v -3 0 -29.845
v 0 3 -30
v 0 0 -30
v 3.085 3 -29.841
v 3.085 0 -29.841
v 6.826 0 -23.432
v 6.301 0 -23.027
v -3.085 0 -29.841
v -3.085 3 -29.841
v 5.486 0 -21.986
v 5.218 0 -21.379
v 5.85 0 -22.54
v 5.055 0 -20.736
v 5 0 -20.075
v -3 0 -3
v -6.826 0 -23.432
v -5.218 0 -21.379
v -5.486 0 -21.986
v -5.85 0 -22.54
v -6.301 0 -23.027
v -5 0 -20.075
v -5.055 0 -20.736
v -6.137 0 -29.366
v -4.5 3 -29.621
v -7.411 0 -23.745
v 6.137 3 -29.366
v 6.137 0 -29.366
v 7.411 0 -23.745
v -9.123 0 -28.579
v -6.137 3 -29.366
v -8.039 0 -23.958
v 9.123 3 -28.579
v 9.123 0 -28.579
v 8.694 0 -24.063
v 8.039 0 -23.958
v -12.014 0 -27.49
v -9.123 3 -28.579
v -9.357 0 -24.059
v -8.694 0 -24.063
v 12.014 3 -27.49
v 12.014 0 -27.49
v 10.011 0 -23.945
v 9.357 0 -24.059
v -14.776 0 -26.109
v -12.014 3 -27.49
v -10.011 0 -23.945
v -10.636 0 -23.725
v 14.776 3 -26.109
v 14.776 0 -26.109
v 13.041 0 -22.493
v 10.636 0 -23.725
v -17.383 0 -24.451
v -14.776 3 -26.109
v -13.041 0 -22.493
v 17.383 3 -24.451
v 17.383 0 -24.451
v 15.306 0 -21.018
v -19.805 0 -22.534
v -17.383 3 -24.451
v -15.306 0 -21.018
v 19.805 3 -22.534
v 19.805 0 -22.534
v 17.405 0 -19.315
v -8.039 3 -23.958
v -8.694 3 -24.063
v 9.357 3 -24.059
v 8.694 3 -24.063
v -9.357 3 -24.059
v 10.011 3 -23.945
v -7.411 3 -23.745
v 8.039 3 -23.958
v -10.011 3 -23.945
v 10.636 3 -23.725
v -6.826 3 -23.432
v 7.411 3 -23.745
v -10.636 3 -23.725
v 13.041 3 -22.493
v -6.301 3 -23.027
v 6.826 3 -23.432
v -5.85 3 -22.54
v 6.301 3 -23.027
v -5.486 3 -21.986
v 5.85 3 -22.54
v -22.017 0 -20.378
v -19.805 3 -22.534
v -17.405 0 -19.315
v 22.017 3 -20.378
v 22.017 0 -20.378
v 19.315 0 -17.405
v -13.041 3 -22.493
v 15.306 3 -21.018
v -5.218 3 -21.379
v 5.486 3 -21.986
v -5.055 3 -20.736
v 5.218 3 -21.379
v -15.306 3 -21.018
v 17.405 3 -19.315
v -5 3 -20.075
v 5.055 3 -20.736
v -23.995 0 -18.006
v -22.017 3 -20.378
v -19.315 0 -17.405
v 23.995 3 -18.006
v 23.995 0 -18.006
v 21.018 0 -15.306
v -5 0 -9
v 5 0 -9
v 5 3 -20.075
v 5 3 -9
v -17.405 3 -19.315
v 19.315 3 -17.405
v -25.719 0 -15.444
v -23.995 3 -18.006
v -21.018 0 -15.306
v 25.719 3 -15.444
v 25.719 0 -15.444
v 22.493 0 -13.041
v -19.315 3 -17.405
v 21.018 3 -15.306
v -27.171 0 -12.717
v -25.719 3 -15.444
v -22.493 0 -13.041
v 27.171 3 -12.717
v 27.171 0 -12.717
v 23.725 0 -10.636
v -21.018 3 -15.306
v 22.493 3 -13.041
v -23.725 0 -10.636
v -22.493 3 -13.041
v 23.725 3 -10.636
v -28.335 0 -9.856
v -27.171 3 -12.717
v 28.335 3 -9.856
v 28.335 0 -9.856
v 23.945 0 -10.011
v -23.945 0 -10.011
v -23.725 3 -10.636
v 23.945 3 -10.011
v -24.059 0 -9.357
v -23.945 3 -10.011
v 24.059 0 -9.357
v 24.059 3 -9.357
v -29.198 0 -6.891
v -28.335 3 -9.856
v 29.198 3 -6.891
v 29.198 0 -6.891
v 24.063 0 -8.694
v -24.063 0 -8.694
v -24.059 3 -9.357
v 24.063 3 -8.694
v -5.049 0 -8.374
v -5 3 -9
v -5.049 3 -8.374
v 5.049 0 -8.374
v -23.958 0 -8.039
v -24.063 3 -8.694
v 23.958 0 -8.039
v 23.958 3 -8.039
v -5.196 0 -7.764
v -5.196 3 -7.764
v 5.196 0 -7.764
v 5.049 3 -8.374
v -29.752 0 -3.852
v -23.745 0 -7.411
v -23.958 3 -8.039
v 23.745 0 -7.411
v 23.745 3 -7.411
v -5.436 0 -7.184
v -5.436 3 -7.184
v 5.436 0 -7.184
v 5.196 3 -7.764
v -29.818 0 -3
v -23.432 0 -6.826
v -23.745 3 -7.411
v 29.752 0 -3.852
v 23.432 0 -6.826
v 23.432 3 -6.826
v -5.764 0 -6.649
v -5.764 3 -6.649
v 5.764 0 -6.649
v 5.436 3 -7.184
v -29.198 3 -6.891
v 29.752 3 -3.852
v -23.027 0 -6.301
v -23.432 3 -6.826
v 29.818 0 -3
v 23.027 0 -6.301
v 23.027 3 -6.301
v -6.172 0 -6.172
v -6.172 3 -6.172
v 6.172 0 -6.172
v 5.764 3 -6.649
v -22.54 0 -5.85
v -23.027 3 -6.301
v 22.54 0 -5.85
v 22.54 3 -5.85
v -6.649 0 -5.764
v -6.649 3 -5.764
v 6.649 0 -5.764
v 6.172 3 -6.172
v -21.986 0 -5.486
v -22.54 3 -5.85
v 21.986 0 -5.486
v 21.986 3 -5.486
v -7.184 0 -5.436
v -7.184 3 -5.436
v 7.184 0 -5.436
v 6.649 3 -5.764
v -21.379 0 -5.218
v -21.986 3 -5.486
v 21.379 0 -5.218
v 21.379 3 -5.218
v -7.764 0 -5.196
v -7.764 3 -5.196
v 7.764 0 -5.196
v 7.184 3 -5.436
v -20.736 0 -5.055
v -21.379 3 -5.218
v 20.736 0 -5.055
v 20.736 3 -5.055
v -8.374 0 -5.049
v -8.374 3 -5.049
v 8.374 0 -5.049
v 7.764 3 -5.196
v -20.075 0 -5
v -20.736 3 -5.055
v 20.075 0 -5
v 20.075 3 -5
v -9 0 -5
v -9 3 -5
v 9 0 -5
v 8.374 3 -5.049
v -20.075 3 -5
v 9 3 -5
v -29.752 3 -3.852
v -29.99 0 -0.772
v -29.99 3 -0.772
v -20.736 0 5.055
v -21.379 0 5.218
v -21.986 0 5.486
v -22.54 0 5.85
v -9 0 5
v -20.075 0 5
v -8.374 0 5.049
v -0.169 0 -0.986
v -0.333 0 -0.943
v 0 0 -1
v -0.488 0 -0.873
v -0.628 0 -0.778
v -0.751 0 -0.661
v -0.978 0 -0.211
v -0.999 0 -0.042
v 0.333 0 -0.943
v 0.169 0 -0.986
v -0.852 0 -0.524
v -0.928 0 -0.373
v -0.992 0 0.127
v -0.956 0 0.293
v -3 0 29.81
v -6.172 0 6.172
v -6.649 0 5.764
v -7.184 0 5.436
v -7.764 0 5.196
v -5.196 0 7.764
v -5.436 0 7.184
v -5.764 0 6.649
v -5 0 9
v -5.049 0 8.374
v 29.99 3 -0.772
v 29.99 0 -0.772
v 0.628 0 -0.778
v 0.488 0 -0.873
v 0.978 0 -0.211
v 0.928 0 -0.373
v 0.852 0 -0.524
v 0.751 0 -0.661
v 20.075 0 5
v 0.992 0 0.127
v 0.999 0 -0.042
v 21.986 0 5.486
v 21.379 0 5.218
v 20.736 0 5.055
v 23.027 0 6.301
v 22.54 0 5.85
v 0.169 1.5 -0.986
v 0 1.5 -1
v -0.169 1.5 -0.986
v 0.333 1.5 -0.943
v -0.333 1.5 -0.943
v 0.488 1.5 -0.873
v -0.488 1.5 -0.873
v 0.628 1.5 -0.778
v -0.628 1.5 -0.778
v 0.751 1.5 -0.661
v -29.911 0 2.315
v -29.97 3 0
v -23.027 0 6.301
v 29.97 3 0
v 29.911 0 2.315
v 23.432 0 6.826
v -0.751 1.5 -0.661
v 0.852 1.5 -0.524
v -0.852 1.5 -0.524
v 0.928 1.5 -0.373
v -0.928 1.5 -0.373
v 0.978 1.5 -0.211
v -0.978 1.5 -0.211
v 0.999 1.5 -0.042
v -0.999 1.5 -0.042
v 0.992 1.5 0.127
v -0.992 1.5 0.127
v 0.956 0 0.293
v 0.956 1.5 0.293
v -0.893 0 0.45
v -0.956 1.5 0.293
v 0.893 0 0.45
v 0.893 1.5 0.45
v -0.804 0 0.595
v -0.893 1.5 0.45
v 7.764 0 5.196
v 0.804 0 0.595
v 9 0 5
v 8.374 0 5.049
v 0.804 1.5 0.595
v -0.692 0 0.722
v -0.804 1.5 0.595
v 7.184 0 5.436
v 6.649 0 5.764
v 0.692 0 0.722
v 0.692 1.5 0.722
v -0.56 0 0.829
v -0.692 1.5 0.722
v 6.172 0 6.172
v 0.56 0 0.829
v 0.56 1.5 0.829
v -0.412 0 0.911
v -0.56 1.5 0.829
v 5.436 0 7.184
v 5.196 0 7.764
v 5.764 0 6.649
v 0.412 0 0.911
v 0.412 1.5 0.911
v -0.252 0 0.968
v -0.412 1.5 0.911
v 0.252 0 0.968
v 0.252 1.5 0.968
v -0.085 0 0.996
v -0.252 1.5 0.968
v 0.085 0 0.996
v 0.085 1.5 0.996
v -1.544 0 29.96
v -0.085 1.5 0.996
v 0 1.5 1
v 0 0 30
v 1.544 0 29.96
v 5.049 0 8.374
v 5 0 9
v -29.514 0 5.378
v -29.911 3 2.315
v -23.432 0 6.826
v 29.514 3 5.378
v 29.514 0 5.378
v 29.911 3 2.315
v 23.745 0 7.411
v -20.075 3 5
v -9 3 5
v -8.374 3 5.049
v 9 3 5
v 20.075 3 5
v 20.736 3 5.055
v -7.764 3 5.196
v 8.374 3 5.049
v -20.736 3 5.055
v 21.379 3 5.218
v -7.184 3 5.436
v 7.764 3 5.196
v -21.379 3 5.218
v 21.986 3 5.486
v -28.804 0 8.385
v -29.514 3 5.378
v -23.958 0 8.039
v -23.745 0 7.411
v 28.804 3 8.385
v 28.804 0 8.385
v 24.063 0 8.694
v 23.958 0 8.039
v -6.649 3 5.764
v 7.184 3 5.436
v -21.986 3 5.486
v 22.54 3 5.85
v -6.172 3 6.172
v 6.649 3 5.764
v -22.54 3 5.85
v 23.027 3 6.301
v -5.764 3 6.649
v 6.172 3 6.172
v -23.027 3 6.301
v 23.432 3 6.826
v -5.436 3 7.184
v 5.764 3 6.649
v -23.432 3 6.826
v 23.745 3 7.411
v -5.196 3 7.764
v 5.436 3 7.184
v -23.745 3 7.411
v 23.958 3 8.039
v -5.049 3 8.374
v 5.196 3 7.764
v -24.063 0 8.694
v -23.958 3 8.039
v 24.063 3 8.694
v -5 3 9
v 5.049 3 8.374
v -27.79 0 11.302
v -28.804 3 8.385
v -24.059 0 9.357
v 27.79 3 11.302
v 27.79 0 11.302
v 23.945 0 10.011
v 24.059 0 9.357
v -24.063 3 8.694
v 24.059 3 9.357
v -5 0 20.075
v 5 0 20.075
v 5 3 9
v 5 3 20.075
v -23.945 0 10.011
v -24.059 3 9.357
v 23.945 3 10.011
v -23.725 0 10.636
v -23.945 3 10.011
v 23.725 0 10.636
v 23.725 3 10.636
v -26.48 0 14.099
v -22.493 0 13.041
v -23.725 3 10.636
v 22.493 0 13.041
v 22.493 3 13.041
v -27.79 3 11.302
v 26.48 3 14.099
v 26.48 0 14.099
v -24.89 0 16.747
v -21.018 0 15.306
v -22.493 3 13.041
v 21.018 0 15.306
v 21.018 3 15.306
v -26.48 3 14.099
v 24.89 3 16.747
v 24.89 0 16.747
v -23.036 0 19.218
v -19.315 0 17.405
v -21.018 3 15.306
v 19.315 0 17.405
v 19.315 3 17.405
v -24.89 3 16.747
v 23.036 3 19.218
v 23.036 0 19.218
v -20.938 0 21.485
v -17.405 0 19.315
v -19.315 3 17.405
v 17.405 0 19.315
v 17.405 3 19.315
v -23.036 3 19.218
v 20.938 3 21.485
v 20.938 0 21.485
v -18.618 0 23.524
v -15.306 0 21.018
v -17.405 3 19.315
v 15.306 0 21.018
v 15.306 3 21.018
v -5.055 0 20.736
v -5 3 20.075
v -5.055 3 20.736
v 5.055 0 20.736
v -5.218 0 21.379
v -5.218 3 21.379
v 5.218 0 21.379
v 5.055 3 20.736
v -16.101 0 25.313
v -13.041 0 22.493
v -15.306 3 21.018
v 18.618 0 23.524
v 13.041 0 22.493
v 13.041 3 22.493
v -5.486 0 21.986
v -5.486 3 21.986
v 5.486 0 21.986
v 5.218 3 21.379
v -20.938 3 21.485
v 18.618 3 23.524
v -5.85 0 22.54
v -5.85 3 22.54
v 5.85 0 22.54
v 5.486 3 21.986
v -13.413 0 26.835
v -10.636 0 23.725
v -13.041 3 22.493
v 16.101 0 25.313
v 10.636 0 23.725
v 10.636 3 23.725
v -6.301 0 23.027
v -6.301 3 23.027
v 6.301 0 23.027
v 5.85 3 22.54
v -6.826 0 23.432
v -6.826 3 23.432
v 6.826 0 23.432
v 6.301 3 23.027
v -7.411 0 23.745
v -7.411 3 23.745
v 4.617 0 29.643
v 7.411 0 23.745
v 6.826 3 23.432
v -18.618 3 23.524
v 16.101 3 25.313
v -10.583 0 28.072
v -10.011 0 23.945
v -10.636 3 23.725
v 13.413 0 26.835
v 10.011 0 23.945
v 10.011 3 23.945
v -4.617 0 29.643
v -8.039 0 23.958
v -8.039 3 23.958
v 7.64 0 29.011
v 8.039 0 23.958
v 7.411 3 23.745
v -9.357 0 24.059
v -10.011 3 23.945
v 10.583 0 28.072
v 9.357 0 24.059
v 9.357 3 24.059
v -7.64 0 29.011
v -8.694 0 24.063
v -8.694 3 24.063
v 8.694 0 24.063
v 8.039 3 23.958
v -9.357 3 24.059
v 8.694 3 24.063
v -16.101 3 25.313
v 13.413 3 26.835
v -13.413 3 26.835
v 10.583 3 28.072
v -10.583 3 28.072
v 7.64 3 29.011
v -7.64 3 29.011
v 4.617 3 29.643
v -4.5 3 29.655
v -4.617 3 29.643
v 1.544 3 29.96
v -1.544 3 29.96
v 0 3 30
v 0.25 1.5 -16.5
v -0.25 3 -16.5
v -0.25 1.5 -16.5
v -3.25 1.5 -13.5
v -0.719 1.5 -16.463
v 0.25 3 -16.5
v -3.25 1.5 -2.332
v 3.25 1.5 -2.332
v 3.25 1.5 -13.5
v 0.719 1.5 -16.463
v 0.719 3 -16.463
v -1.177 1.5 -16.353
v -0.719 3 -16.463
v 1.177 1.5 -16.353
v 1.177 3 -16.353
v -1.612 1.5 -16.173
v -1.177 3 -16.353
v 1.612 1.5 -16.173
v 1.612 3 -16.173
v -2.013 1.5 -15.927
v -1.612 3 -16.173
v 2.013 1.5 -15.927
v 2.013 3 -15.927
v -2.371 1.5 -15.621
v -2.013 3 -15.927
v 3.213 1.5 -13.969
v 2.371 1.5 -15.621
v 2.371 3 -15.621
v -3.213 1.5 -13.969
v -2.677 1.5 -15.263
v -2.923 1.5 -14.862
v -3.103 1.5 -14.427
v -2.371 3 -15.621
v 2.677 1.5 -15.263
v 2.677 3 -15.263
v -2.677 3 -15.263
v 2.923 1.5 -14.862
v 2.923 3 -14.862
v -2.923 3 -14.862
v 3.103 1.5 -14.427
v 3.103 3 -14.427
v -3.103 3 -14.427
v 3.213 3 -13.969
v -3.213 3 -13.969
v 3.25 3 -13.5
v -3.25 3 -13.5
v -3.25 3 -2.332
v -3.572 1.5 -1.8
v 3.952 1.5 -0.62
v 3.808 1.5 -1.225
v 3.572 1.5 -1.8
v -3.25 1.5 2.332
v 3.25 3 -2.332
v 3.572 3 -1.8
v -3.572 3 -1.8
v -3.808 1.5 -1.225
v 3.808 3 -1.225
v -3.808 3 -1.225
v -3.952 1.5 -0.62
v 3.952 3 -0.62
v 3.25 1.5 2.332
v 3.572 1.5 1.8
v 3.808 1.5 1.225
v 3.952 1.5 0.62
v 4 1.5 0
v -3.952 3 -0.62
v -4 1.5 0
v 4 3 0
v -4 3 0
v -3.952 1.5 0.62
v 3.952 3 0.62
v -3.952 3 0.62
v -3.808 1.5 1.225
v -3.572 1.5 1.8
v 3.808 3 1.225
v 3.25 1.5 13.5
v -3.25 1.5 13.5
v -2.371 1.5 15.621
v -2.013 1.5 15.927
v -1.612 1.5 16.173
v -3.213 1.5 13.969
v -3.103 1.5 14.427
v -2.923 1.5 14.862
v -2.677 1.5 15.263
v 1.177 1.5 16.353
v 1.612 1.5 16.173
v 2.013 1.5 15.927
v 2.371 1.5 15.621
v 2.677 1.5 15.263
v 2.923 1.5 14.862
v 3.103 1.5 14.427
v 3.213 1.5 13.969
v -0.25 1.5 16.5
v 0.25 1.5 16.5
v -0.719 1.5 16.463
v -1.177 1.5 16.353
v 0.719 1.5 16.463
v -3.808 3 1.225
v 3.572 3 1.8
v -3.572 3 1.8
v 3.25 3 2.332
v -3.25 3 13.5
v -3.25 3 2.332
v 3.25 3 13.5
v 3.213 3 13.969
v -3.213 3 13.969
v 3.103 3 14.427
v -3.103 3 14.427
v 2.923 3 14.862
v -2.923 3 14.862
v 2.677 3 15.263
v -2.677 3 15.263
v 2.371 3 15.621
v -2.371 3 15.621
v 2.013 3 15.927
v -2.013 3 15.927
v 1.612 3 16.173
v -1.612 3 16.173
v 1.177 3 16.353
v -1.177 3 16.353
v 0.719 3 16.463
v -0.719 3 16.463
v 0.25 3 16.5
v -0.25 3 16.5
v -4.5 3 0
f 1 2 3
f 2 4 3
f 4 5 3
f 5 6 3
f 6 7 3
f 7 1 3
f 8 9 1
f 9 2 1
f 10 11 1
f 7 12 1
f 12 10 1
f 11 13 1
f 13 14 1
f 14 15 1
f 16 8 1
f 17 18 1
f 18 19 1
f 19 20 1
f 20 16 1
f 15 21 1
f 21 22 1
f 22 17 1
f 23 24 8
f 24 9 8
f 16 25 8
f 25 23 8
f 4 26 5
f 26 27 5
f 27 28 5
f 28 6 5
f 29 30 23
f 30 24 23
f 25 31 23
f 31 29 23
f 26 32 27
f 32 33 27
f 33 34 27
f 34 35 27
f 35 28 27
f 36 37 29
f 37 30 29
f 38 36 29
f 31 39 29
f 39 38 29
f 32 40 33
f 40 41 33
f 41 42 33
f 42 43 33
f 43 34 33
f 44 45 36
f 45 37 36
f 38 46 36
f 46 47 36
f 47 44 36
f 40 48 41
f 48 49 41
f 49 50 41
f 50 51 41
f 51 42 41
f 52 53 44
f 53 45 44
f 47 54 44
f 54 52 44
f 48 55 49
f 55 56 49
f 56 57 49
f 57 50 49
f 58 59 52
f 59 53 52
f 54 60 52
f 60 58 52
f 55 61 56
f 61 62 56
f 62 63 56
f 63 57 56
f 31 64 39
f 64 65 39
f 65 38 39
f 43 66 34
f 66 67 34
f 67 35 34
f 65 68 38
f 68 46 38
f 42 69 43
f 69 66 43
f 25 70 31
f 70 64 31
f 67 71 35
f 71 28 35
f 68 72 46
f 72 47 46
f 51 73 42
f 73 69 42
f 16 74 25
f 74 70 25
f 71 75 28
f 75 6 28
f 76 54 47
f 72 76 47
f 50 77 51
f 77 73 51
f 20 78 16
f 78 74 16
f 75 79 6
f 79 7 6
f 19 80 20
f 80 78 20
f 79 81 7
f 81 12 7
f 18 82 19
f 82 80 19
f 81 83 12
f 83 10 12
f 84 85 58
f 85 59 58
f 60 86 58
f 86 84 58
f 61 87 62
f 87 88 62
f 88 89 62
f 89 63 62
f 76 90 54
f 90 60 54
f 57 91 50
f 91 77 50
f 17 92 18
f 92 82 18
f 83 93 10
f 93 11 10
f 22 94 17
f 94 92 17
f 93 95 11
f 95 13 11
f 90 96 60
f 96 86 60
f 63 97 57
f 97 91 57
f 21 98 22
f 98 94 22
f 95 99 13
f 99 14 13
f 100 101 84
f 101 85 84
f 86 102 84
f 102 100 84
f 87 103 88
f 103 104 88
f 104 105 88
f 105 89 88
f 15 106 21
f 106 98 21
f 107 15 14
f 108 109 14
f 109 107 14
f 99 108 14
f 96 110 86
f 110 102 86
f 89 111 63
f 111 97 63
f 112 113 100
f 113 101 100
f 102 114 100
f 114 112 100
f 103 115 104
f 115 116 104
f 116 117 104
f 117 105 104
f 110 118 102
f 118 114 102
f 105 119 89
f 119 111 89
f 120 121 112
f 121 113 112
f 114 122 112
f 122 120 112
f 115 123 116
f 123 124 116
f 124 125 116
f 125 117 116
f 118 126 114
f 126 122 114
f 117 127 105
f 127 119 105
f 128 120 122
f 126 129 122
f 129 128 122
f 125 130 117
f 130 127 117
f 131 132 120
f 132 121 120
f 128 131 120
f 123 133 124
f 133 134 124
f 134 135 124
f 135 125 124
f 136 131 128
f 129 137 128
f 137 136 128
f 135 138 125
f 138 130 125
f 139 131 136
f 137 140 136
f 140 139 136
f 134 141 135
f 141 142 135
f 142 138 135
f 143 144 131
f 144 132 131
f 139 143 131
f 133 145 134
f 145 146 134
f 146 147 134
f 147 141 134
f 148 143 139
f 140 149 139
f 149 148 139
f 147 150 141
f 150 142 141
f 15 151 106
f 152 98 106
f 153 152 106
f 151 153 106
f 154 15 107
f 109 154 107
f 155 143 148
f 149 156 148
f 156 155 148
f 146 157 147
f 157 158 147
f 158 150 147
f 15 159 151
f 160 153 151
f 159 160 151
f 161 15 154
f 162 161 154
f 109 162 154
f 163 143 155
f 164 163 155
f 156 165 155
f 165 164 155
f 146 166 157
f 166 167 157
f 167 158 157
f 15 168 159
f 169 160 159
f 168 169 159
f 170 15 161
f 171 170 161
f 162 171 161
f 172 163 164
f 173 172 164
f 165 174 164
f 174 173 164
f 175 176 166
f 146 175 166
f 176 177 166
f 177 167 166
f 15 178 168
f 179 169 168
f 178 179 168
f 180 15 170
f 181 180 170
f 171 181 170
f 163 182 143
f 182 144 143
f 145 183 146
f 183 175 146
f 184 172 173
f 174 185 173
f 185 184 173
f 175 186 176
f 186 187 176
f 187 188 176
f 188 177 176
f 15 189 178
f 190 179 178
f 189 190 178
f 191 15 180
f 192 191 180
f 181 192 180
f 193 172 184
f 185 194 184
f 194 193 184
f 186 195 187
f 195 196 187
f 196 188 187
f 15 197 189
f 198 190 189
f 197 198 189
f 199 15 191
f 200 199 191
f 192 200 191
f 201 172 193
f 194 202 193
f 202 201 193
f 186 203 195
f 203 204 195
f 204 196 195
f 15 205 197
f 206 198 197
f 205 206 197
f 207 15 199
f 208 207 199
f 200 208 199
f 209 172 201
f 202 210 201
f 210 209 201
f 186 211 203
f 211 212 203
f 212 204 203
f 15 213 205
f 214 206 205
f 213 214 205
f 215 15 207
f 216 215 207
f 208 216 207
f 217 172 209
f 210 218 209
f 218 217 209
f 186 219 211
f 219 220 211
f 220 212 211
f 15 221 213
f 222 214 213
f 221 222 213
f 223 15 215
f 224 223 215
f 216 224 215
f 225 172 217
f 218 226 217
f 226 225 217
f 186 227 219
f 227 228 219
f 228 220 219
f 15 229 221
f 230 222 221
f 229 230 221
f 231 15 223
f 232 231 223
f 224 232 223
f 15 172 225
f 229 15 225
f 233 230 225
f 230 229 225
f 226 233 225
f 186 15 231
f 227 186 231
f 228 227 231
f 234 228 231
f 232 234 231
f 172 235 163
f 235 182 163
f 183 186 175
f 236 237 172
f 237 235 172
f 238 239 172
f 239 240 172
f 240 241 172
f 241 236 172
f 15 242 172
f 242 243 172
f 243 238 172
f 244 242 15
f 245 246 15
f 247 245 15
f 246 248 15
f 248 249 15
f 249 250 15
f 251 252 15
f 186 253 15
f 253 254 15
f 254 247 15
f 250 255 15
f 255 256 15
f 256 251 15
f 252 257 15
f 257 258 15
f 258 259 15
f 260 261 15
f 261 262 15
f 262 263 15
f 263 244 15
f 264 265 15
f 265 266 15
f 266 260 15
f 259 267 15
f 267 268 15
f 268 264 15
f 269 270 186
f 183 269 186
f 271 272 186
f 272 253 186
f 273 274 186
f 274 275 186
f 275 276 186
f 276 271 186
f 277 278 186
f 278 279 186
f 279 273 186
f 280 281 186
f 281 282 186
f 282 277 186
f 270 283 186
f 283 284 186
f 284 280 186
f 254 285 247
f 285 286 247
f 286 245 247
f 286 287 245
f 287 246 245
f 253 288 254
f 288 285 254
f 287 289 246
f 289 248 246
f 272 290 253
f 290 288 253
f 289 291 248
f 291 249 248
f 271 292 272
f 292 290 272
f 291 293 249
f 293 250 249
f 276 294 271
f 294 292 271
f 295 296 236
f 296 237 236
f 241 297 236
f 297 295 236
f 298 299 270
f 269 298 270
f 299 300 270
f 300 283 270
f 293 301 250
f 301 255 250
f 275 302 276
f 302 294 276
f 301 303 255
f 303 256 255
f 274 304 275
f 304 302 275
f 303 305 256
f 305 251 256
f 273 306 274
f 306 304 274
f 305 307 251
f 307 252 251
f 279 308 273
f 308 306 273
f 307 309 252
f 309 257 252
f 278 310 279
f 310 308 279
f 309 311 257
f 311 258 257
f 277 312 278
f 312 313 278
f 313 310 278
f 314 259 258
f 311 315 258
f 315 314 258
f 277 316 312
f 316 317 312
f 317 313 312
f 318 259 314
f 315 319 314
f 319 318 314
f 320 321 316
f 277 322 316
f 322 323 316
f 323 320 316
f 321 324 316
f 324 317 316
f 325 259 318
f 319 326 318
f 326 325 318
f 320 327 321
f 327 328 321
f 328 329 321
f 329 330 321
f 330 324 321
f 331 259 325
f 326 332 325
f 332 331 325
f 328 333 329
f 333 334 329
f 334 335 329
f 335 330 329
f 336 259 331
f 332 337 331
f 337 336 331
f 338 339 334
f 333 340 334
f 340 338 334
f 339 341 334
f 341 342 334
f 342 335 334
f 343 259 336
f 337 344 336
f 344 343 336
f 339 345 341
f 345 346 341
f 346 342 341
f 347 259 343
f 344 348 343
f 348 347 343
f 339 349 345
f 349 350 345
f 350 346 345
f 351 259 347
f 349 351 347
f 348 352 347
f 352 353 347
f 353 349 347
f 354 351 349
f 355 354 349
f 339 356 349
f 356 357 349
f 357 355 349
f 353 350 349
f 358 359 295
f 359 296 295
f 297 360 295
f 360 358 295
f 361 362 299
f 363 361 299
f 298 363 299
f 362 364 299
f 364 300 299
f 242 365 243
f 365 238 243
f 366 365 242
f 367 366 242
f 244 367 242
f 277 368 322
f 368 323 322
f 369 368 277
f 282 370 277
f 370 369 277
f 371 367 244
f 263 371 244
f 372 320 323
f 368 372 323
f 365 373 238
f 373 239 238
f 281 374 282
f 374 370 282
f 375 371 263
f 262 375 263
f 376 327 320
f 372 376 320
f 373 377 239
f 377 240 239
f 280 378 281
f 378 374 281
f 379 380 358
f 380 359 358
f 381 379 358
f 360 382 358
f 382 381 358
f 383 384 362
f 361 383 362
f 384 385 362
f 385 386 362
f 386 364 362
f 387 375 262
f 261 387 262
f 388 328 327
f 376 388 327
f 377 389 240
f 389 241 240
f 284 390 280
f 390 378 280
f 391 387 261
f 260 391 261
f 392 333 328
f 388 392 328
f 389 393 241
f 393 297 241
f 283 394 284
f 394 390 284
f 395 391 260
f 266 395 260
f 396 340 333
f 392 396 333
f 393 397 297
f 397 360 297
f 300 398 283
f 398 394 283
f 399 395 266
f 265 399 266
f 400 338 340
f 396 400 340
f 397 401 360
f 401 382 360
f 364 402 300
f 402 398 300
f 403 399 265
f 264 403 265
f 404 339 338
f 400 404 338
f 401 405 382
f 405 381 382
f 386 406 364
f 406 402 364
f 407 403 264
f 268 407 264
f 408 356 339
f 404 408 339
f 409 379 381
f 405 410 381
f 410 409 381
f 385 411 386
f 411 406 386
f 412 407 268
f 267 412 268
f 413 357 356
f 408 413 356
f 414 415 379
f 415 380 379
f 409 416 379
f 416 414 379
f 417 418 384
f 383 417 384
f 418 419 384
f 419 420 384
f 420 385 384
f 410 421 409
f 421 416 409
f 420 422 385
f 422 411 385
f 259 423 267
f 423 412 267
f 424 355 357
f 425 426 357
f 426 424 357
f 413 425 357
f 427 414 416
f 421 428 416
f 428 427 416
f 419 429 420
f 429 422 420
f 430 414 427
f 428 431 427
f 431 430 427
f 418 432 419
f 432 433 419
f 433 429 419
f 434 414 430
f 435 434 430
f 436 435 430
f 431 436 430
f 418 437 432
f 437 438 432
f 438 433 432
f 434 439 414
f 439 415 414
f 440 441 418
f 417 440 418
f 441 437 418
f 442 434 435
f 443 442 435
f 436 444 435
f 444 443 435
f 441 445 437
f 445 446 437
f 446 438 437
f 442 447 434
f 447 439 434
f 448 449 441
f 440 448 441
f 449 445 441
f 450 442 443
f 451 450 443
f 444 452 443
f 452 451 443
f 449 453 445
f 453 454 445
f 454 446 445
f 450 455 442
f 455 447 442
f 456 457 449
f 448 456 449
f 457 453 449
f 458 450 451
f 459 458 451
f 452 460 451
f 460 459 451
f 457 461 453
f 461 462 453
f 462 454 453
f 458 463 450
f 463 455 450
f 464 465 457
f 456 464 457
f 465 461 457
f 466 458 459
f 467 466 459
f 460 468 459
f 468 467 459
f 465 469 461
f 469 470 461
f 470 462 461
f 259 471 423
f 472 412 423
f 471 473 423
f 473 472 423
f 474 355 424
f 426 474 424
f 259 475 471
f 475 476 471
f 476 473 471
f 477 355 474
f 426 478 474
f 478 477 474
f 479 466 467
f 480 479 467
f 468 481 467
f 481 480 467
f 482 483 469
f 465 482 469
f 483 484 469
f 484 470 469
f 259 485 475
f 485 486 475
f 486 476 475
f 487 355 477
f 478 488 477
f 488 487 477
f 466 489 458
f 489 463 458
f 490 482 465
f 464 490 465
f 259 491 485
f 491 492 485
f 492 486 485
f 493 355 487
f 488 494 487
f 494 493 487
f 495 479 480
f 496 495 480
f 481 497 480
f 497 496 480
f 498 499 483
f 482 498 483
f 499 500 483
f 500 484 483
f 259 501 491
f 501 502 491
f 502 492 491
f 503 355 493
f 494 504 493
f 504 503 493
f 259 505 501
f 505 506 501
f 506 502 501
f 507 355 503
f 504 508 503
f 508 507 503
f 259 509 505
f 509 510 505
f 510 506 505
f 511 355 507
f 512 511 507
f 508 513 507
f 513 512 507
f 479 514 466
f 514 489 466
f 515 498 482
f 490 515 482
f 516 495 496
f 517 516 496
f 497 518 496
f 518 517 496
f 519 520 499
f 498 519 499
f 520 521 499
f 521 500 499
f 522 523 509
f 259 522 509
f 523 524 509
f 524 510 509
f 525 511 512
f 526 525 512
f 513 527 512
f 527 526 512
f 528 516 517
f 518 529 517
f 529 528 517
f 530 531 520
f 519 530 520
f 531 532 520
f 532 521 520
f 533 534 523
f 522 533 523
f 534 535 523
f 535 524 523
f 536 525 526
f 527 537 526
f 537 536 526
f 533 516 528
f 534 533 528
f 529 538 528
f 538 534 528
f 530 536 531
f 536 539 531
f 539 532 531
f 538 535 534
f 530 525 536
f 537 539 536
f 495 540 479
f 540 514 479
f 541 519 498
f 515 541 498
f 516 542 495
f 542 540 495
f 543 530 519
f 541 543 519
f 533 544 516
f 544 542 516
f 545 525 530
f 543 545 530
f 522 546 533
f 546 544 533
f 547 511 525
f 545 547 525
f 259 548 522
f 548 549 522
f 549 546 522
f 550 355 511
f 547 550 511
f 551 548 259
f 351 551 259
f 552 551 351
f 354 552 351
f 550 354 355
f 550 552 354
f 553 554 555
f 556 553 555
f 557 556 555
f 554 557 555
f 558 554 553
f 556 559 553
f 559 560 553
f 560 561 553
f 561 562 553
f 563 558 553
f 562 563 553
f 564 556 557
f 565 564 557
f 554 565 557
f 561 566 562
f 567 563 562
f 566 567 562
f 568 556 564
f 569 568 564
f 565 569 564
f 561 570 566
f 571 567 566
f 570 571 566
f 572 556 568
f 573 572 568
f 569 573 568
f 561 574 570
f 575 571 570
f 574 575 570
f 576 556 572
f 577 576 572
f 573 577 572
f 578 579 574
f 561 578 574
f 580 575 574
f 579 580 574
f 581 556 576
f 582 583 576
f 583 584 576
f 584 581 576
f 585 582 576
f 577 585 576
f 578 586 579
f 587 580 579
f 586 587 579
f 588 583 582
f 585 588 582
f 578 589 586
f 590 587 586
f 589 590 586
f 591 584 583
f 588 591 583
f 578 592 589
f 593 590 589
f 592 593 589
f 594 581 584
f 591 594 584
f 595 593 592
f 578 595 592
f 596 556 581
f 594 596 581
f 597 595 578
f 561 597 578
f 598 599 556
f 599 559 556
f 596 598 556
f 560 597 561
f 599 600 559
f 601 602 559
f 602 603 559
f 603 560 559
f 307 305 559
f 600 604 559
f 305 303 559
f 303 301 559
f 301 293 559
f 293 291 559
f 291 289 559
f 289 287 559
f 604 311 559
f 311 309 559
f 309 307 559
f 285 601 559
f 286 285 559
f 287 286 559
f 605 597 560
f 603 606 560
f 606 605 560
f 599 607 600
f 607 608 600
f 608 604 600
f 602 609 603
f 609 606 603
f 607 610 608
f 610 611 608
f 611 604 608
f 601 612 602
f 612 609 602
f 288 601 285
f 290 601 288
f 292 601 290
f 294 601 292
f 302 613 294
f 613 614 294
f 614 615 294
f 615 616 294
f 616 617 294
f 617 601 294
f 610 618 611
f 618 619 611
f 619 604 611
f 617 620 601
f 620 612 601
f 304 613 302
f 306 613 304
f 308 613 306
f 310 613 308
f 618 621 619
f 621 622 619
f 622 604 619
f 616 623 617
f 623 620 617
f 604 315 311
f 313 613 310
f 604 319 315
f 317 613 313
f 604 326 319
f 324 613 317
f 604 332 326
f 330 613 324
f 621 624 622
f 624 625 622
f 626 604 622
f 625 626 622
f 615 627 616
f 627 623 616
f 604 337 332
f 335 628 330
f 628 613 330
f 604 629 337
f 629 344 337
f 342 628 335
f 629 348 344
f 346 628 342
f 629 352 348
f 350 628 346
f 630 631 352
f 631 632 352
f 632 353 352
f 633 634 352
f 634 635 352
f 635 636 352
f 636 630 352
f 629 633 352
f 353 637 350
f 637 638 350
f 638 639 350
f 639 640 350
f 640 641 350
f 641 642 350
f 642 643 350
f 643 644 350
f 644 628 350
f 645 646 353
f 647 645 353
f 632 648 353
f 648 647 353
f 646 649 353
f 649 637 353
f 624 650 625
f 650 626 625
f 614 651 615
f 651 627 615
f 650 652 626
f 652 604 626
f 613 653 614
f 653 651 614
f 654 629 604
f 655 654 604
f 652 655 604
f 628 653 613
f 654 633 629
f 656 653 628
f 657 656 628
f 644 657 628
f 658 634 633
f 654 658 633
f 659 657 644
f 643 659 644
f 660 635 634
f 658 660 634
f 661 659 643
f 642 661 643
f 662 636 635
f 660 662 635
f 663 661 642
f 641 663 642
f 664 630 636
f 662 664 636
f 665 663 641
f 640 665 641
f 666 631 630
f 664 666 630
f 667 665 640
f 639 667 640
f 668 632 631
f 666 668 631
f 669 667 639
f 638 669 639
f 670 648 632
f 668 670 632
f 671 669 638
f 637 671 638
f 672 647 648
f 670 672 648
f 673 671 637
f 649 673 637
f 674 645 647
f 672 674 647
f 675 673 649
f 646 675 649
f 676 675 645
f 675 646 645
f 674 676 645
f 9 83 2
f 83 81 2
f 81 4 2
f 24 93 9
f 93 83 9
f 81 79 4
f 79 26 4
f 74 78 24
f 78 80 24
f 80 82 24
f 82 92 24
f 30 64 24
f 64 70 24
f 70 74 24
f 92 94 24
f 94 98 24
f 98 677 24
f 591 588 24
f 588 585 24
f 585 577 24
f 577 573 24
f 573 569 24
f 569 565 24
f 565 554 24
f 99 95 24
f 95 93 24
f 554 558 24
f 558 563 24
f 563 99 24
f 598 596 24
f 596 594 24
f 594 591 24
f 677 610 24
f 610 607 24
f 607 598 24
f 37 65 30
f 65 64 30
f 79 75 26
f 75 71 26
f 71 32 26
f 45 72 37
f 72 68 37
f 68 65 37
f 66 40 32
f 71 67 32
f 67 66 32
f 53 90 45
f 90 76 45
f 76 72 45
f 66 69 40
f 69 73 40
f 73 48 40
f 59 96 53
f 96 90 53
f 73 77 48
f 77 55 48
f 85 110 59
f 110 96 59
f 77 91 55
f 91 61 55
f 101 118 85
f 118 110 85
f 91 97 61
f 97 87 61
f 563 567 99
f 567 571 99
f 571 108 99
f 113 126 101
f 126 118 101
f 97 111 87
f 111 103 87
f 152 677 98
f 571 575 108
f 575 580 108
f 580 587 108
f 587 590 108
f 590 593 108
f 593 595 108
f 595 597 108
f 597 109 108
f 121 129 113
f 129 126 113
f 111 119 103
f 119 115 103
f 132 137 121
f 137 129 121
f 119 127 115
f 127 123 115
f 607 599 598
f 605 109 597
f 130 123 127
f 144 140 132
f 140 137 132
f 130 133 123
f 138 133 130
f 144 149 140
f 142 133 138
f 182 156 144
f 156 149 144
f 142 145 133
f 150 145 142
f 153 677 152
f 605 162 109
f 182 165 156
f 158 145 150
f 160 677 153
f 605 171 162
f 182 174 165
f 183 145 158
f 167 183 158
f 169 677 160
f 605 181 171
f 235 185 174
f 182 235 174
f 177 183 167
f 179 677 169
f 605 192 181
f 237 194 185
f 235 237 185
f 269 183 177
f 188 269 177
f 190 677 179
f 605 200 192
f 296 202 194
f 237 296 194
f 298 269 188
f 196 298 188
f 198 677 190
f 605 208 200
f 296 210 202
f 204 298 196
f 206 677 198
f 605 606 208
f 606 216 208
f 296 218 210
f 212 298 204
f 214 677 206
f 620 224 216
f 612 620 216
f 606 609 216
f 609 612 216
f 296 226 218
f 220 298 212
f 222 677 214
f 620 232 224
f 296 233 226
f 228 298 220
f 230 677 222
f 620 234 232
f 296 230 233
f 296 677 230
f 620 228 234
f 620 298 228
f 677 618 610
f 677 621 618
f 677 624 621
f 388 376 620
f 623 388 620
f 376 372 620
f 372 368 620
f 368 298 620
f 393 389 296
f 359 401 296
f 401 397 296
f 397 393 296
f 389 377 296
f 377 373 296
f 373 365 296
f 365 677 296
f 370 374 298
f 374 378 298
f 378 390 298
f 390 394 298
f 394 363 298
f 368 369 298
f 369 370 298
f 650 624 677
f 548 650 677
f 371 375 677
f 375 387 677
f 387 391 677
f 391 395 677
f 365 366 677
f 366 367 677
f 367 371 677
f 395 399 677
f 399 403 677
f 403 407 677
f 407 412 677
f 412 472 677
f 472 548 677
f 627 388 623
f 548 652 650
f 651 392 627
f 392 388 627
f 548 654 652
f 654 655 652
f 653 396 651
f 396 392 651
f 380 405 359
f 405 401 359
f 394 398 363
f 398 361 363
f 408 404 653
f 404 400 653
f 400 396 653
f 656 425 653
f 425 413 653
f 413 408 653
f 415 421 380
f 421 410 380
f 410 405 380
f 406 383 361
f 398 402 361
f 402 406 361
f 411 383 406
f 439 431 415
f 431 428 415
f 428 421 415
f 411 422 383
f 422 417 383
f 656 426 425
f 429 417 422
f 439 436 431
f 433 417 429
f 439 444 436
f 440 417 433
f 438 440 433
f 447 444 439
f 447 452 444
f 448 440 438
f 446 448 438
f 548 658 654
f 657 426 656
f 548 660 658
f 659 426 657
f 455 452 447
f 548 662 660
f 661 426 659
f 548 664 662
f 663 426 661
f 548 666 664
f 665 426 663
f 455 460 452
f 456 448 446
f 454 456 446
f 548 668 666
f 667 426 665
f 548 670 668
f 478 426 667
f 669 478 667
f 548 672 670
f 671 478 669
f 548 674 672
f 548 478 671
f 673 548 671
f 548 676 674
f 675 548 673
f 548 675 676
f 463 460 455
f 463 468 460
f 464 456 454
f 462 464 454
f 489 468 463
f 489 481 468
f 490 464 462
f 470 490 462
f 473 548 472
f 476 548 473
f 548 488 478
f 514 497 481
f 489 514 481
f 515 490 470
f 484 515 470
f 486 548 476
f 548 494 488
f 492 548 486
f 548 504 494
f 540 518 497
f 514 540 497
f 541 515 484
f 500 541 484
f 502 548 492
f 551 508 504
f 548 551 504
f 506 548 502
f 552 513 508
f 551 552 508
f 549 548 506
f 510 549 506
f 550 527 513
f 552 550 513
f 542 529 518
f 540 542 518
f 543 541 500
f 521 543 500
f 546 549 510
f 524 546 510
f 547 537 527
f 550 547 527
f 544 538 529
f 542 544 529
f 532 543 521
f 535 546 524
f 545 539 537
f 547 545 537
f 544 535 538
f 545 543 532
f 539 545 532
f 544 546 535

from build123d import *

# Parameters (mm, degrees)
SKETCH1_R           = 30
BOSS_EXTRUDE1_DEPTH = 3
CUT_EXTRUDE1_DEPTH  = 1.5
CUT_EXTRUDE2_DEPTH  = 3
SKETCH4_R           = 1
CUT_EXTRUDE3_DEPTH  = 3
FILLET1_R           = 4
FILLET2_R           = 3


with BuildPart() as part:
    # Sketch1 → Boss-Extrude1 (new body)
    with BuildSketch(Plane(origin=(0, 0, 0), x_dir=(1, 0, 0), z_dir=(0, 1, 0))):
        with Locations(Location((0, 0, 0), (0, 0, 270))):
            Circle(SKETCH1_R)
    extrude(amount=BOSS_EXTRUDE1_DEPTH)

    # Sketch2 → Cut-Extrude1 (cut)
    with BuildSketch(Plane(origin=(0, 3, 0), x_dir=(1, 0, 0), z_dir=(0, 1, 0))):
        with BuildLine():
            Line((-3.25, 16.5), (-3.25, 2.331844763))
            ThreePointArc((-3.25, 2.331844763), (-4, 0), (-3.25, -2.331844763))
            Line((-3.25, -2.331844763), (-3.25, -16.5))
            Line((-3.25, -16.5), (3.25, -16.5))
            Line((3.25, -16.5), (3.25, -2.331844763))
            ThreePointArc((3.25, -2.331844763), (4, 0), (3.25, 2.331844763))
            Line((3.25, 2.331844763), (3.25, 16.5))
            Line((3.25, 16.5), (-3.25, 16.5))
        make_face()
    extrude(amount=-CUT_EXTRUDE1_DEPTH, mode=Mode.SUBTRACT)

    # Sketch3 → Cut-Extrude2 (cut)
    with BuildSketch(Plane(origin=(0, 3, 0), x_dir=(1, 0, 0), z_dir=(0, 1, 0))):
        with BuildLine():
            Line((-5, -25.514701644), (-5, -5))
            Line((-5, -5), (-25.514701644, -5))
            ThreePointArc((-25.514701644, -5), (-18.384776311, -18.384776311), (-5, -25.514701644))
        make_face()
        with BuildLine():
            Line((5, -25.514701644), (5, -5))
            Line((5, -5), (25.514701644, -5))
            ThreePointArc((25.514701644, -5), (18.384776311, -18.384776311), (5, -25.514701644))
        make_face()
        with BuildLine():
            Line((25.514701644, 5), (5, 5))
            Line((5, 5), (5, 25.514701644))
            ThreePointArc((5, 25.514701644), (18.384776311, 18.384776311), (25.514701644, 5))
        make_face()
        with BuildLine():
            Line((-5, 5), (-5, 25.514701644))
            ThreePointArc((-5, 25.514701644), (-18.384776311, 18.384776311), (-25.514701644, 5))
            Line((-25.514701644, 5), (-5, 5))
        make_face()
    extrude(amount=-CUT_EXTRUDE2_DEPTH, mode=Mode.SUBTRACT)

    # Sketch4 → Cut-Extrude3 (cut)
    with BuildSketch(Plane.XZ):
        with Locations(Location((0, 0, 0), (0, 0, 270))):
            Circle(SKETCH4_R)
    extrude(amount=-CUT_EXTRUDE3_DEPTH, mode=Mode.SUBTRACT)

    # Fillet1
    fillet1_edges = [part.edges().sort_by_distance(p)[0] for p in [
        (-25.514701644, 1.5, -5),
        (-5, 1.5, -25.514701644),
        (-5, 1.5, -5),
        (25.514701644, 1.5, 5),
        (5, 1.5, 25.514701644),
        (5, 1.5, 5),
        (5, 1.5, -25.514701644),
        (25.514701644, 1.5, -5),
        (5, 1.5, -5),
        (-5, 1.5, 25.514701644),
        (-25.514701644, 1.5, 5),
        (-5, 1.5, 5),
    ]]
    fillet(fillet1_edges, radius=FILLET1_R)

    # Fillet2
    fillet2_edges = [part.edges().sort_by_distance(p)[0] for p in [
        (3.25, 2.25, 16.5),
        (-3.25, 2.25, 16.5),
        (-3.25, 2.25, -16.5),
        (3.25, 2.25, -16.5),
    ]]
    fillet(fillet2_edges, radius=FILLET2_R)


solid = part.part
